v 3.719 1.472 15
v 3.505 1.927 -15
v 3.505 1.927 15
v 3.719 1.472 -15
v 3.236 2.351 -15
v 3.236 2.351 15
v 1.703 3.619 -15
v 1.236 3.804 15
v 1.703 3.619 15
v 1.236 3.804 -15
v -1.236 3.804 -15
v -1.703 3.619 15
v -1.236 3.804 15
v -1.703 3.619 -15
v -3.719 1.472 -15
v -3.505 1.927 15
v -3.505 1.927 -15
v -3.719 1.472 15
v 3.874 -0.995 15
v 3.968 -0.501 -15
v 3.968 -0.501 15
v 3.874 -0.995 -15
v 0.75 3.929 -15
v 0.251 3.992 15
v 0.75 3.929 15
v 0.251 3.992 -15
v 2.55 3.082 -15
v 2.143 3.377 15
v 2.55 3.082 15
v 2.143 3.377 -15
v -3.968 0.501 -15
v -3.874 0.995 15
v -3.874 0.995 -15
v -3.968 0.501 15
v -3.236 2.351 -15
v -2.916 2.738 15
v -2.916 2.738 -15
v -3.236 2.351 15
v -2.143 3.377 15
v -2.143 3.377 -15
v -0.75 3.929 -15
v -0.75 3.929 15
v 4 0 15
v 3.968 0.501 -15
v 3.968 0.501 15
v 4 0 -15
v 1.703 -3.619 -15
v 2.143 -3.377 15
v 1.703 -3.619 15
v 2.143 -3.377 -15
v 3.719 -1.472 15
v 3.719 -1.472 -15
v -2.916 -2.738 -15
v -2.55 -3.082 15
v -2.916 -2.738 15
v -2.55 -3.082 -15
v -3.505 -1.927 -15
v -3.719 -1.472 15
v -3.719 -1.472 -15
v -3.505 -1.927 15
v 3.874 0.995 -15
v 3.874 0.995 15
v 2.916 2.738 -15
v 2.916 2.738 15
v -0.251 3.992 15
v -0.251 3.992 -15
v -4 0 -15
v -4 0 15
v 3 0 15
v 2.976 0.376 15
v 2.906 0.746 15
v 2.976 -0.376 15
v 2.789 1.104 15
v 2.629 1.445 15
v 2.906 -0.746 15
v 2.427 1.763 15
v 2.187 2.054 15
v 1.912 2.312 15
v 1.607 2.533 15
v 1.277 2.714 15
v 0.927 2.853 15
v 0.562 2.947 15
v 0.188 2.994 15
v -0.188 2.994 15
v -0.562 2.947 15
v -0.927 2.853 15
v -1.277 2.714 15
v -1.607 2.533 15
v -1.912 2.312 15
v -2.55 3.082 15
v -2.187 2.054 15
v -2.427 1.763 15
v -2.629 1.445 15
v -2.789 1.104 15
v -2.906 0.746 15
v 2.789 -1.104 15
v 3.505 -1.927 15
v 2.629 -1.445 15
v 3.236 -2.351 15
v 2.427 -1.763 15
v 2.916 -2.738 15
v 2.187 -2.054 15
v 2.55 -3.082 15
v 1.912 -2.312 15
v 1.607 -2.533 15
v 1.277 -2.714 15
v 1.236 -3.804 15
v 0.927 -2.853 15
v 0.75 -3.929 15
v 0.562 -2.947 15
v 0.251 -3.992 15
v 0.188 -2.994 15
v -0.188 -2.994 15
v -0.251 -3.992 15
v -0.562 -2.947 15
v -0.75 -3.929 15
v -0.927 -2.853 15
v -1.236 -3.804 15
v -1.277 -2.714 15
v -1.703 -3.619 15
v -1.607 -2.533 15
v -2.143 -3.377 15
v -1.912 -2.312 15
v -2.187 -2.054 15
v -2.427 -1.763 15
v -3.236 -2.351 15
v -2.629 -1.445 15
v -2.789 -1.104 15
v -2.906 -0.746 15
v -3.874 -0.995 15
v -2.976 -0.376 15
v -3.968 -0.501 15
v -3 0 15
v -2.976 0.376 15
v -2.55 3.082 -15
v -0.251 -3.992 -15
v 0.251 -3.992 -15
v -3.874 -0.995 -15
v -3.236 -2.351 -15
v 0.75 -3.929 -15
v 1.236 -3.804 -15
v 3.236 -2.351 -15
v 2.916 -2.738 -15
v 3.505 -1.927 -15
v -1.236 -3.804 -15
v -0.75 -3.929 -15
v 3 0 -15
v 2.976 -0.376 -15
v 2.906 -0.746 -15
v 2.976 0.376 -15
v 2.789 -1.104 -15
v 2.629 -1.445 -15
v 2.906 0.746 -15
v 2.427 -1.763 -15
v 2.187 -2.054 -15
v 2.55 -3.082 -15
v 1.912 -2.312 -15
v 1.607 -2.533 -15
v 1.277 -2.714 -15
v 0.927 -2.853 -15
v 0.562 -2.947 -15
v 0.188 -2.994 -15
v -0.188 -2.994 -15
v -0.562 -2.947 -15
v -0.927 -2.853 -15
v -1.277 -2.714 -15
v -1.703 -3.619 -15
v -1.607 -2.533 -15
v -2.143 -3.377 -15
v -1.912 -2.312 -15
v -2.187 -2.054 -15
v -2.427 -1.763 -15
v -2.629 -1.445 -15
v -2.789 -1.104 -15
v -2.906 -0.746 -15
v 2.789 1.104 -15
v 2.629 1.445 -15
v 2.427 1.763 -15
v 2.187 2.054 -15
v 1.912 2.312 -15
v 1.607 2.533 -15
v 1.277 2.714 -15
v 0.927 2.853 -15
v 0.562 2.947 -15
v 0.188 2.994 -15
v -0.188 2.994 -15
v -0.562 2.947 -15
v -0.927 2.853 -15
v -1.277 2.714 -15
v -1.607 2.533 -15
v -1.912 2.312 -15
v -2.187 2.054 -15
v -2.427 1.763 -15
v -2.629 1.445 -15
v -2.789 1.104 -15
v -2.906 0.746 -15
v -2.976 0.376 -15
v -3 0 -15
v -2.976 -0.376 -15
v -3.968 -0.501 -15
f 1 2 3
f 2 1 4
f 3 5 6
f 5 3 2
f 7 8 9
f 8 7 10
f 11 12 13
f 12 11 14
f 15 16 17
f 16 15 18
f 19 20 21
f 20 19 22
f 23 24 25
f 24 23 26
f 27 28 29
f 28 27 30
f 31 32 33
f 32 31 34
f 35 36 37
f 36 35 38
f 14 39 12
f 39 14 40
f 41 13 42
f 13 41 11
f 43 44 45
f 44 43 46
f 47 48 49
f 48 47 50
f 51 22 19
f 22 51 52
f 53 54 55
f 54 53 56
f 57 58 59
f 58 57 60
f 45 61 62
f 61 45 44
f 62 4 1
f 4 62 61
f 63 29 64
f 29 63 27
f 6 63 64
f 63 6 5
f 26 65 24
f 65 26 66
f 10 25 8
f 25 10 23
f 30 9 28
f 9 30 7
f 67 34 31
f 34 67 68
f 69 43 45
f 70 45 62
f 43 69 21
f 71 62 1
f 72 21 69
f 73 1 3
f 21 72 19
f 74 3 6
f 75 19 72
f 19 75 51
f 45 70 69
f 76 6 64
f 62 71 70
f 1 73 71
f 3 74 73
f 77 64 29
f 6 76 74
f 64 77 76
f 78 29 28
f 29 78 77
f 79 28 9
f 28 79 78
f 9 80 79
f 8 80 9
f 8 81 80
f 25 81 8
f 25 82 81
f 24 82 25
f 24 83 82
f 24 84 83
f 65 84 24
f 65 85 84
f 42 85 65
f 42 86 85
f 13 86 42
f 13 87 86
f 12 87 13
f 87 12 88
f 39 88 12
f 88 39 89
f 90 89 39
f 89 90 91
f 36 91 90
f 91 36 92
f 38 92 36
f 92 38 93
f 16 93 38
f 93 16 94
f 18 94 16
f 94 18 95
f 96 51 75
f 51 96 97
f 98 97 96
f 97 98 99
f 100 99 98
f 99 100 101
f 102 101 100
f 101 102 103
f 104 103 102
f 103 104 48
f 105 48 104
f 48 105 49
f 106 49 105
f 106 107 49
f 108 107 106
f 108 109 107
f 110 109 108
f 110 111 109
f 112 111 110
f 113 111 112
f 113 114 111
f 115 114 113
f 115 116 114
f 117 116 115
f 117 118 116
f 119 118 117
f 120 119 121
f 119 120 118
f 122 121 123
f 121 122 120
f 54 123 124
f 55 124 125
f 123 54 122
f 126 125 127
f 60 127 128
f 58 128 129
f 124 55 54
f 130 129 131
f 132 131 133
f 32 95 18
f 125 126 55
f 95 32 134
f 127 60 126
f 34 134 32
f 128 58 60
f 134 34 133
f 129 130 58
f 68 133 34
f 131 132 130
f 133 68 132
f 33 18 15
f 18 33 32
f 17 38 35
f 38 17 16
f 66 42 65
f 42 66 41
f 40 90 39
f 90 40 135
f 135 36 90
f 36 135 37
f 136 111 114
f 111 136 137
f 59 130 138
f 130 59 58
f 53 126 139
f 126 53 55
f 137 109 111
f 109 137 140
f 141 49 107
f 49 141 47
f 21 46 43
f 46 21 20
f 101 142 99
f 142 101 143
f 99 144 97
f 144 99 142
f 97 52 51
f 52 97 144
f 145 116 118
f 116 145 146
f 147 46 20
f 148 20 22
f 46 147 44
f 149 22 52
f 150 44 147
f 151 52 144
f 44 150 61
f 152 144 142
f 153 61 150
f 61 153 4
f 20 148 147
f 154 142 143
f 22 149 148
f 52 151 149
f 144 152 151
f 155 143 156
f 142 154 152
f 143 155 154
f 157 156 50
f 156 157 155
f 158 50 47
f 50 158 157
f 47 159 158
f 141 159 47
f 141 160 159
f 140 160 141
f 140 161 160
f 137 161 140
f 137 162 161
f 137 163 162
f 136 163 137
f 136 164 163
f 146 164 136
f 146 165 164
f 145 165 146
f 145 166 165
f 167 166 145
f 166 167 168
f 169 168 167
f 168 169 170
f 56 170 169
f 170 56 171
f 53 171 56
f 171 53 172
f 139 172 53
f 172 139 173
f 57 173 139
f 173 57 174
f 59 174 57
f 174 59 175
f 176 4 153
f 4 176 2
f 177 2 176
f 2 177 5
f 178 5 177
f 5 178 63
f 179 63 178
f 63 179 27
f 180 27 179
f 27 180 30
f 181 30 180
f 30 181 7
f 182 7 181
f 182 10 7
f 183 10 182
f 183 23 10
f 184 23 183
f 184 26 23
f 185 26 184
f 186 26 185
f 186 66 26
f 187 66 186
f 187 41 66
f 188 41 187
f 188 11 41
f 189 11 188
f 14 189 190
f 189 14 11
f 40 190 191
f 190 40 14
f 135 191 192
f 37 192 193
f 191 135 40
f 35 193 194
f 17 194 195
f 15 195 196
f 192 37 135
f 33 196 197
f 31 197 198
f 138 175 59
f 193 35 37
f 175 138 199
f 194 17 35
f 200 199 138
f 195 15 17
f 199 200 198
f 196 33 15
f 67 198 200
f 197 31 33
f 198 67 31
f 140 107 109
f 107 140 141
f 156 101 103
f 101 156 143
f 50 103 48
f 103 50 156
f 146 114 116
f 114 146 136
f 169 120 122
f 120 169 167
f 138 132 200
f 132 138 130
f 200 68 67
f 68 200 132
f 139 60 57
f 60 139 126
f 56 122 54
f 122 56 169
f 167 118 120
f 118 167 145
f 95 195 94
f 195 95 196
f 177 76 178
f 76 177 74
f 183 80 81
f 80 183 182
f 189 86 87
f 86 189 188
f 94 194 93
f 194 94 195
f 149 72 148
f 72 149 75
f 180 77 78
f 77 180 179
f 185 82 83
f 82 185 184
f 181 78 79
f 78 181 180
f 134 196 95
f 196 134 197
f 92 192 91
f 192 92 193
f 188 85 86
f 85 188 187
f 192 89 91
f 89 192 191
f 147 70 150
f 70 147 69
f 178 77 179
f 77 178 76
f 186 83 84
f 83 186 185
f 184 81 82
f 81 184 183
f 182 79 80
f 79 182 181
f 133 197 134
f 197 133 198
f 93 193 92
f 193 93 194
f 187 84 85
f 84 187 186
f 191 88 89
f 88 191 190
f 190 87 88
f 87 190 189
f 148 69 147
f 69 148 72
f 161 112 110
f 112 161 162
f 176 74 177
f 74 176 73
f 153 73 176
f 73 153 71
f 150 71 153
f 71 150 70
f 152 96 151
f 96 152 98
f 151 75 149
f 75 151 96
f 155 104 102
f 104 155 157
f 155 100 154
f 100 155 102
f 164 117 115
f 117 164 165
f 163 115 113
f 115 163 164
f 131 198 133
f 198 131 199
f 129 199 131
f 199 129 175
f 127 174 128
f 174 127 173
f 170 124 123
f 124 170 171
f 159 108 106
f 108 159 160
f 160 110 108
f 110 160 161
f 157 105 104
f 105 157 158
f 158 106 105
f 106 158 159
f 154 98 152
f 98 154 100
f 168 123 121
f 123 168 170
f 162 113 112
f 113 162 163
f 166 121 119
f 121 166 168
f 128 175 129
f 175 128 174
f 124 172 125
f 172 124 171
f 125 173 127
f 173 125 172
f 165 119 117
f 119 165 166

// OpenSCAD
$fn = 50;


difference() {
	union() {
		translate(v = [0, 0, -15.0000000000]) {
			cylinder(h = 30, r = 4.0000000000);
		}
	}
	union() {
		translate(v = [0, 0, -100.0000000000]) {
			cylinder(h = 200, r = 3);
		}
	}
}
